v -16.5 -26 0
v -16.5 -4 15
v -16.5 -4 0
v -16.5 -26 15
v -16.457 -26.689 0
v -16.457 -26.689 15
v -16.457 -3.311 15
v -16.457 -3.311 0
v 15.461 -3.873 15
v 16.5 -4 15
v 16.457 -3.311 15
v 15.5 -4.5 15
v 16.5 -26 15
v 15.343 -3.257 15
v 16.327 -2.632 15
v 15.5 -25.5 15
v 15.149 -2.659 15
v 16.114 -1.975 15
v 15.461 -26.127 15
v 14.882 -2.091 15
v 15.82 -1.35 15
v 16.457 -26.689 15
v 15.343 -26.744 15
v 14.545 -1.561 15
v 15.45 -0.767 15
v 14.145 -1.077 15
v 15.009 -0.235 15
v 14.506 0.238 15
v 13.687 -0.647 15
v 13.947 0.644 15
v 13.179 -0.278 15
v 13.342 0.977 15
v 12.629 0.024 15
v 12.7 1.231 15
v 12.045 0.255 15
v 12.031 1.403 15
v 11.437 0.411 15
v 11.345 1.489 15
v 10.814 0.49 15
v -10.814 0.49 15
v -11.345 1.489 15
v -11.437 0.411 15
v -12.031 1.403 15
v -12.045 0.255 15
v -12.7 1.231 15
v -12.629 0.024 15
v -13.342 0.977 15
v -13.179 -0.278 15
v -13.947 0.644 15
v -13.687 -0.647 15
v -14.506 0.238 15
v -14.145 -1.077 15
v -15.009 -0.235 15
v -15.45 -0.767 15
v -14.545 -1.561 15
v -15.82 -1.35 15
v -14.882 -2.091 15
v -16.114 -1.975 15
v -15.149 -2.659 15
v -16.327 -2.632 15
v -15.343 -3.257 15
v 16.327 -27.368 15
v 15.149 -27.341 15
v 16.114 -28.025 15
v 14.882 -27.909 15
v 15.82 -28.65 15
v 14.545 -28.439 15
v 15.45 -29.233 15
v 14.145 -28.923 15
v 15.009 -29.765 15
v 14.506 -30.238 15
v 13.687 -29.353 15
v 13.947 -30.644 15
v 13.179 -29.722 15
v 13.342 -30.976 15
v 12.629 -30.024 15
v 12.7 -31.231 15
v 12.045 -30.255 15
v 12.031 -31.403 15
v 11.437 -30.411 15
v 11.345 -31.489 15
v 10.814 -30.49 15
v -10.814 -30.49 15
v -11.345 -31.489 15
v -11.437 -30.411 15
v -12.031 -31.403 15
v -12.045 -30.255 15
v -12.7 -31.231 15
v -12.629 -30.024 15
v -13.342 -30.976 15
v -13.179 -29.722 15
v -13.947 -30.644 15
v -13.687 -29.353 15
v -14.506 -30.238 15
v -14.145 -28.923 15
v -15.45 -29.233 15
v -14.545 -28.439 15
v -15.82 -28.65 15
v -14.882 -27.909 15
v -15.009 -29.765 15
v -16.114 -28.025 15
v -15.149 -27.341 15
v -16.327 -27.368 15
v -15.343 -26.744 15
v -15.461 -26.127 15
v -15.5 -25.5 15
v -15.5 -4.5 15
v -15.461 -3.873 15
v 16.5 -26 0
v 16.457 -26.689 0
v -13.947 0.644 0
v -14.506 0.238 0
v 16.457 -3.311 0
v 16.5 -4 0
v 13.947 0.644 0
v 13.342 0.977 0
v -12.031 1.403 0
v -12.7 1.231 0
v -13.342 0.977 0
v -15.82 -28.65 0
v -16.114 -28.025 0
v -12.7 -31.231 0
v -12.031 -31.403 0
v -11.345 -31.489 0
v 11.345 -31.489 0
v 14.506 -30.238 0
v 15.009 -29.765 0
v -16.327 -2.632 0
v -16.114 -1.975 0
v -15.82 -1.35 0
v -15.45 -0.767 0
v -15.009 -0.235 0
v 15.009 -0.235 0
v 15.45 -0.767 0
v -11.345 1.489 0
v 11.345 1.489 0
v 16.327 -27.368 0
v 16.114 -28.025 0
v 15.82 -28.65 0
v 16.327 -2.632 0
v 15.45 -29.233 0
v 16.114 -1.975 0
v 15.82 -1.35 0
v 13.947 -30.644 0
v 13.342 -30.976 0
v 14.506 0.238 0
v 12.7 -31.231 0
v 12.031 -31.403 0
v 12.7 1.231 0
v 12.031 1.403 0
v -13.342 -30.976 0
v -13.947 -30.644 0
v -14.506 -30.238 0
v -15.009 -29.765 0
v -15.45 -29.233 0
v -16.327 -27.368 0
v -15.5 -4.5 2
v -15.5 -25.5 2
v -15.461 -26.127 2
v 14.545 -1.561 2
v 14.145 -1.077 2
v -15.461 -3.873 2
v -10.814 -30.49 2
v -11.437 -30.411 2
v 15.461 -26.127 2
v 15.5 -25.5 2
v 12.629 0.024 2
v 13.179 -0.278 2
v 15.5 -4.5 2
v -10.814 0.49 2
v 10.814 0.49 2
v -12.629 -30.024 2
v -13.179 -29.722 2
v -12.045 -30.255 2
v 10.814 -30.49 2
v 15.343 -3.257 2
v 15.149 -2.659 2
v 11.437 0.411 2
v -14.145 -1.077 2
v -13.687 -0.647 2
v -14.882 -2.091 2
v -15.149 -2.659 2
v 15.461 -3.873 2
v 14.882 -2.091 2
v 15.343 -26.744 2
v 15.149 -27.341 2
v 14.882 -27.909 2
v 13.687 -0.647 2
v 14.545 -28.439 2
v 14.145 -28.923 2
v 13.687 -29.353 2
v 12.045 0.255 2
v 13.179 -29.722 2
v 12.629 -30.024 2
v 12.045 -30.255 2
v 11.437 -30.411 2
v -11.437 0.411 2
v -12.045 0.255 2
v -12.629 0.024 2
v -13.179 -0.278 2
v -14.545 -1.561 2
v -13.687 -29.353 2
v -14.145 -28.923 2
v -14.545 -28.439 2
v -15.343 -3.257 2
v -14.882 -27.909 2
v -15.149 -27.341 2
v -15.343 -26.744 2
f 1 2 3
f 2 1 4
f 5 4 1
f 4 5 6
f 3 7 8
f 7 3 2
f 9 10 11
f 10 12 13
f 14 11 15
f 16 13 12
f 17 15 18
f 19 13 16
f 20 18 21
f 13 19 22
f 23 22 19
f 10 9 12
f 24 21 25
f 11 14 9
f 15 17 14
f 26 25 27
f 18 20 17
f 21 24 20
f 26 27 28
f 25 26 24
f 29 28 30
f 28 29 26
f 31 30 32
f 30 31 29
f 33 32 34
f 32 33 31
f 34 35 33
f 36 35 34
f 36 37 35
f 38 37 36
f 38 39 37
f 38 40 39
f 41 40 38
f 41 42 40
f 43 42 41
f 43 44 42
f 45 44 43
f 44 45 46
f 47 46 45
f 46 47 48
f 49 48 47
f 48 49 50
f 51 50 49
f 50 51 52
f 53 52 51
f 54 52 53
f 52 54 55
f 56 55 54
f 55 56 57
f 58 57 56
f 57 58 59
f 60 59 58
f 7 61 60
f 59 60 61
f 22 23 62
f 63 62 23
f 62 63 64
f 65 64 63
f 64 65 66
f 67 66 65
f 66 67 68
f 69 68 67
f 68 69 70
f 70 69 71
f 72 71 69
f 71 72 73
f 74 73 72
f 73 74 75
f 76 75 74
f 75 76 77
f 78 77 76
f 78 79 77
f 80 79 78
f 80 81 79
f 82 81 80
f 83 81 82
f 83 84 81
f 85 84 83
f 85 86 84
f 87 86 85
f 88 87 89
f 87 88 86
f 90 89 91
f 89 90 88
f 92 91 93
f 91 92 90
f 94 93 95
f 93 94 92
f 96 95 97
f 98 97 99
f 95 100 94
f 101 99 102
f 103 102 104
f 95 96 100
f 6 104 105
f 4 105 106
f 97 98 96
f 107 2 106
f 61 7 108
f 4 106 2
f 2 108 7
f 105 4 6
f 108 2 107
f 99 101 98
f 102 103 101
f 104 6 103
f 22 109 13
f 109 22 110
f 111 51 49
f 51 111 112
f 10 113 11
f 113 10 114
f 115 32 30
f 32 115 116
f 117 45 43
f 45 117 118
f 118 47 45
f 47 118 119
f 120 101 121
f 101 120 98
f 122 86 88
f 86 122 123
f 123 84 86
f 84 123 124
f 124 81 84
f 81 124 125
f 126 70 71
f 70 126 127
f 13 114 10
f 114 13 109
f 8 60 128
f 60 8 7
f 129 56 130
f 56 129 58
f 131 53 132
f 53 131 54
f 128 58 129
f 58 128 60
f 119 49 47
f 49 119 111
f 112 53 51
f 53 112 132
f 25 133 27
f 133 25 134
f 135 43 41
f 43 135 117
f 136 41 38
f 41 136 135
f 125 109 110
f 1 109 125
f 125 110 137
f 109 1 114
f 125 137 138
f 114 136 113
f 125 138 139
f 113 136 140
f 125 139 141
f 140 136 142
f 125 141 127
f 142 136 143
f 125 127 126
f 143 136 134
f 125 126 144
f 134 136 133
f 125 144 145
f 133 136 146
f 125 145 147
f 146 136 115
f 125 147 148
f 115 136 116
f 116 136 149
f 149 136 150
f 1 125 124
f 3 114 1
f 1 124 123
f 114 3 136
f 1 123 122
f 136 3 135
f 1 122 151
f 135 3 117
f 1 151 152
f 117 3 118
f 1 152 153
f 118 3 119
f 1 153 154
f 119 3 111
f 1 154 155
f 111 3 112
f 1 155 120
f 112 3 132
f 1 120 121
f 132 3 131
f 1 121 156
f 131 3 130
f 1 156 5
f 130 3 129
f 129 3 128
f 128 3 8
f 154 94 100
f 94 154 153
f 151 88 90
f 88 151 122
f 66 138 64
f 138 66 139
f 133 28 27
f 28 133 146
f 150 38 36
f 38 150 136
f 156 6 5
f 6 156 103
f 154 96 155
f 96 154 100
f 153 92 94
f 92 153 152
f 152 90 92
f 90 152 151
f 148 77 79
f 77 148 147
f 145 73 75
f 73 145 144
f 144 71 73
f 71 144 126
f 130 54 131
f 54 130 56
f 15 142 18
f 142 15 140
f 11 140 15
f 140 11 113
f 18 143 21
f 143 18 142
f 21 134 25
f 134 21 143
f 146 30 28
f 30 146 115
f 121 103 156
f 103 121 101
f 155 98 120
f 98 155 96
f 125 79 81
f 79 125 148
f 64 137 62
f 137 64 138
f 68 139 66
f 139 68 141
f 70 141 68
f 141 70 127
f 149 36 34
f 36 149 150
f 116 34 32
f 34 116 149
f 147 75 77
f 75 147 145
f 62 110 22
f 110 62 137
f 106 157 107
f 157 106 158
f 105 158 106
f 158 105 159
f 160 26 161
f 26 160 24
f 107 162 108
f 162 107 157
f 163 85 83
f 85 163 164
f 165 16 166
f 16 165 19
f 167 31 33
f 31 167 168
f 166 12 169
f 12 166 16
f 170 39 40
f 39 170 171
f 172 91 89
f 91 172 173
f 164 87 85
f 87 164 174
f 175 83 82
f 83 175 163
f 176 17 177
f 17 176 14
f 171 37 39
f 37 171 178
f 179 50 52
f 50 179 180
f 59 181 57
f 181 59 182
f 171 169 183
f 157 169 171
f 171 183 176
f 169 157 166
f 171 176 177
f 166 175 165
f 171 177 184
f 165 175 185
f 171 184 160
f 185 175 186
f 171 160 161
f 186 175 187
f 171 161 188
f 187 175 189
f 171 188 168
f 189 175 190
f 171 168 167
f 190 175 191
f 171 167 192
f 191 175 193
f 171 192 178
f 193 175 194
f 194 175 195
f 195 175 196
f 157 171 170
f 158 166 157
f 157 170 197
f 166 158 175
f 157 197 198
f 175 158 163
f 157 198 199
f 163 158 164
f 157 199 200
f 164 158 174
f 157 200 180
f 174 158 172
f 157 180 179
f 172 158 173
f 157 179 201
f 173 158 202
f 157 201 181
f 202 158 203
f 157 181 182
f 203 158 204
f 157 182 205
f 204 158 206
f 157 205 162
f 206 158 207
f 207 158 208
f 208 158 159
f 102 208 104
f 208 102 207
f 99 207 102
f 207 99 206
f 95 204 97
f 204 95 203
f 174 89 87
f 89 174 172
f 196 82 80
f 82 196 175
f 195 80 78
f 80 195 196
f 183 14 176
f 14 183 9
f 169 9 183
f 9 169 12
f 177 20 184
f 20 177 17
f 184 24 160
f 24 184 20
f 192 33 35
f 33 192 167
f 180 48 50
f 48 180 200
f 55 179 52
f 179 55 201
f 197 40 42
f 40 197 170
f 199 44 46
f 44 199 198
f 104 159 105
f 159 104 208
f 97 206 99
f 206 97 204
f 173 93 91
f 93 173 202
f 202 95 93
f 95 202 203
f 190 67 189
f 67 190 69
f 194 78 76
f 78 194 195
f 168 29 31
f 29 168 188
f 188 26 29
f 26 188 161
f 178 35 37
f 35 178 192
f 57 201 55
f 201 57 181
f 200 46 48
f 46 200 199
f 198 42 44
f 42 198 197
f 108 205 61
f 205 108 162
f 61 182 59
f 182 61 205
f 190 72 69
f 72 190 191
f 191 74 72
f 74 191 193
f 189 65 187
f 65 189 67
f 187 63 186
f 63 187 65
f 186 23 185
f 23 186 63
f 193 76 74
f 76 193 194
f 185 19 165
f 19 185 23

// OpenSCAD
$fn = 50;


difference() {
	union() {
		translate(v = [0, -15.0000000000, 0]) {
			hull() {
				translate(v = [-11.0000000000, 11.0000000000, 0]) {
					cylinder(h = 15, r = 5.5000000000);
				}
				translate(v = [11.0000000000, 11.0000000000, 0]) {
					cylinder(h = 15, r = 5.5000000000);
				}
				translate(v = [-11.0000000000, -11.0000000000, 0]) {
					cylinder(h = 15, r = 5.5000000000);
				}
				translate(v = [11.0000000000, -11.0000000000, 0]) {
					cylinder(h = 15, r = 5.5000000000);
				}
			}
		}
	}
	union() {
		translate(v = [0, -15.0000000000, 2]) {
			hull() {
				translate(v = [-10.5000000000, 10.5000000000, 0]) {
					cylinder(h = 30, r = 5);
				}
				translate(v = [10.5000000000, 10.5000000000, 0]) {
					cylinder(h = 30, r = 5);
				}
				translate(v = [-10.5000000000, -10.5000000000, 0]) {
					cylinder(h = 30, r = 5);
				}
				translate(v = [10.5000000000, -10.5000000000, 0]) {
					cylinder(h = 30, r = 5);
				}
			}
		}
	}
}
